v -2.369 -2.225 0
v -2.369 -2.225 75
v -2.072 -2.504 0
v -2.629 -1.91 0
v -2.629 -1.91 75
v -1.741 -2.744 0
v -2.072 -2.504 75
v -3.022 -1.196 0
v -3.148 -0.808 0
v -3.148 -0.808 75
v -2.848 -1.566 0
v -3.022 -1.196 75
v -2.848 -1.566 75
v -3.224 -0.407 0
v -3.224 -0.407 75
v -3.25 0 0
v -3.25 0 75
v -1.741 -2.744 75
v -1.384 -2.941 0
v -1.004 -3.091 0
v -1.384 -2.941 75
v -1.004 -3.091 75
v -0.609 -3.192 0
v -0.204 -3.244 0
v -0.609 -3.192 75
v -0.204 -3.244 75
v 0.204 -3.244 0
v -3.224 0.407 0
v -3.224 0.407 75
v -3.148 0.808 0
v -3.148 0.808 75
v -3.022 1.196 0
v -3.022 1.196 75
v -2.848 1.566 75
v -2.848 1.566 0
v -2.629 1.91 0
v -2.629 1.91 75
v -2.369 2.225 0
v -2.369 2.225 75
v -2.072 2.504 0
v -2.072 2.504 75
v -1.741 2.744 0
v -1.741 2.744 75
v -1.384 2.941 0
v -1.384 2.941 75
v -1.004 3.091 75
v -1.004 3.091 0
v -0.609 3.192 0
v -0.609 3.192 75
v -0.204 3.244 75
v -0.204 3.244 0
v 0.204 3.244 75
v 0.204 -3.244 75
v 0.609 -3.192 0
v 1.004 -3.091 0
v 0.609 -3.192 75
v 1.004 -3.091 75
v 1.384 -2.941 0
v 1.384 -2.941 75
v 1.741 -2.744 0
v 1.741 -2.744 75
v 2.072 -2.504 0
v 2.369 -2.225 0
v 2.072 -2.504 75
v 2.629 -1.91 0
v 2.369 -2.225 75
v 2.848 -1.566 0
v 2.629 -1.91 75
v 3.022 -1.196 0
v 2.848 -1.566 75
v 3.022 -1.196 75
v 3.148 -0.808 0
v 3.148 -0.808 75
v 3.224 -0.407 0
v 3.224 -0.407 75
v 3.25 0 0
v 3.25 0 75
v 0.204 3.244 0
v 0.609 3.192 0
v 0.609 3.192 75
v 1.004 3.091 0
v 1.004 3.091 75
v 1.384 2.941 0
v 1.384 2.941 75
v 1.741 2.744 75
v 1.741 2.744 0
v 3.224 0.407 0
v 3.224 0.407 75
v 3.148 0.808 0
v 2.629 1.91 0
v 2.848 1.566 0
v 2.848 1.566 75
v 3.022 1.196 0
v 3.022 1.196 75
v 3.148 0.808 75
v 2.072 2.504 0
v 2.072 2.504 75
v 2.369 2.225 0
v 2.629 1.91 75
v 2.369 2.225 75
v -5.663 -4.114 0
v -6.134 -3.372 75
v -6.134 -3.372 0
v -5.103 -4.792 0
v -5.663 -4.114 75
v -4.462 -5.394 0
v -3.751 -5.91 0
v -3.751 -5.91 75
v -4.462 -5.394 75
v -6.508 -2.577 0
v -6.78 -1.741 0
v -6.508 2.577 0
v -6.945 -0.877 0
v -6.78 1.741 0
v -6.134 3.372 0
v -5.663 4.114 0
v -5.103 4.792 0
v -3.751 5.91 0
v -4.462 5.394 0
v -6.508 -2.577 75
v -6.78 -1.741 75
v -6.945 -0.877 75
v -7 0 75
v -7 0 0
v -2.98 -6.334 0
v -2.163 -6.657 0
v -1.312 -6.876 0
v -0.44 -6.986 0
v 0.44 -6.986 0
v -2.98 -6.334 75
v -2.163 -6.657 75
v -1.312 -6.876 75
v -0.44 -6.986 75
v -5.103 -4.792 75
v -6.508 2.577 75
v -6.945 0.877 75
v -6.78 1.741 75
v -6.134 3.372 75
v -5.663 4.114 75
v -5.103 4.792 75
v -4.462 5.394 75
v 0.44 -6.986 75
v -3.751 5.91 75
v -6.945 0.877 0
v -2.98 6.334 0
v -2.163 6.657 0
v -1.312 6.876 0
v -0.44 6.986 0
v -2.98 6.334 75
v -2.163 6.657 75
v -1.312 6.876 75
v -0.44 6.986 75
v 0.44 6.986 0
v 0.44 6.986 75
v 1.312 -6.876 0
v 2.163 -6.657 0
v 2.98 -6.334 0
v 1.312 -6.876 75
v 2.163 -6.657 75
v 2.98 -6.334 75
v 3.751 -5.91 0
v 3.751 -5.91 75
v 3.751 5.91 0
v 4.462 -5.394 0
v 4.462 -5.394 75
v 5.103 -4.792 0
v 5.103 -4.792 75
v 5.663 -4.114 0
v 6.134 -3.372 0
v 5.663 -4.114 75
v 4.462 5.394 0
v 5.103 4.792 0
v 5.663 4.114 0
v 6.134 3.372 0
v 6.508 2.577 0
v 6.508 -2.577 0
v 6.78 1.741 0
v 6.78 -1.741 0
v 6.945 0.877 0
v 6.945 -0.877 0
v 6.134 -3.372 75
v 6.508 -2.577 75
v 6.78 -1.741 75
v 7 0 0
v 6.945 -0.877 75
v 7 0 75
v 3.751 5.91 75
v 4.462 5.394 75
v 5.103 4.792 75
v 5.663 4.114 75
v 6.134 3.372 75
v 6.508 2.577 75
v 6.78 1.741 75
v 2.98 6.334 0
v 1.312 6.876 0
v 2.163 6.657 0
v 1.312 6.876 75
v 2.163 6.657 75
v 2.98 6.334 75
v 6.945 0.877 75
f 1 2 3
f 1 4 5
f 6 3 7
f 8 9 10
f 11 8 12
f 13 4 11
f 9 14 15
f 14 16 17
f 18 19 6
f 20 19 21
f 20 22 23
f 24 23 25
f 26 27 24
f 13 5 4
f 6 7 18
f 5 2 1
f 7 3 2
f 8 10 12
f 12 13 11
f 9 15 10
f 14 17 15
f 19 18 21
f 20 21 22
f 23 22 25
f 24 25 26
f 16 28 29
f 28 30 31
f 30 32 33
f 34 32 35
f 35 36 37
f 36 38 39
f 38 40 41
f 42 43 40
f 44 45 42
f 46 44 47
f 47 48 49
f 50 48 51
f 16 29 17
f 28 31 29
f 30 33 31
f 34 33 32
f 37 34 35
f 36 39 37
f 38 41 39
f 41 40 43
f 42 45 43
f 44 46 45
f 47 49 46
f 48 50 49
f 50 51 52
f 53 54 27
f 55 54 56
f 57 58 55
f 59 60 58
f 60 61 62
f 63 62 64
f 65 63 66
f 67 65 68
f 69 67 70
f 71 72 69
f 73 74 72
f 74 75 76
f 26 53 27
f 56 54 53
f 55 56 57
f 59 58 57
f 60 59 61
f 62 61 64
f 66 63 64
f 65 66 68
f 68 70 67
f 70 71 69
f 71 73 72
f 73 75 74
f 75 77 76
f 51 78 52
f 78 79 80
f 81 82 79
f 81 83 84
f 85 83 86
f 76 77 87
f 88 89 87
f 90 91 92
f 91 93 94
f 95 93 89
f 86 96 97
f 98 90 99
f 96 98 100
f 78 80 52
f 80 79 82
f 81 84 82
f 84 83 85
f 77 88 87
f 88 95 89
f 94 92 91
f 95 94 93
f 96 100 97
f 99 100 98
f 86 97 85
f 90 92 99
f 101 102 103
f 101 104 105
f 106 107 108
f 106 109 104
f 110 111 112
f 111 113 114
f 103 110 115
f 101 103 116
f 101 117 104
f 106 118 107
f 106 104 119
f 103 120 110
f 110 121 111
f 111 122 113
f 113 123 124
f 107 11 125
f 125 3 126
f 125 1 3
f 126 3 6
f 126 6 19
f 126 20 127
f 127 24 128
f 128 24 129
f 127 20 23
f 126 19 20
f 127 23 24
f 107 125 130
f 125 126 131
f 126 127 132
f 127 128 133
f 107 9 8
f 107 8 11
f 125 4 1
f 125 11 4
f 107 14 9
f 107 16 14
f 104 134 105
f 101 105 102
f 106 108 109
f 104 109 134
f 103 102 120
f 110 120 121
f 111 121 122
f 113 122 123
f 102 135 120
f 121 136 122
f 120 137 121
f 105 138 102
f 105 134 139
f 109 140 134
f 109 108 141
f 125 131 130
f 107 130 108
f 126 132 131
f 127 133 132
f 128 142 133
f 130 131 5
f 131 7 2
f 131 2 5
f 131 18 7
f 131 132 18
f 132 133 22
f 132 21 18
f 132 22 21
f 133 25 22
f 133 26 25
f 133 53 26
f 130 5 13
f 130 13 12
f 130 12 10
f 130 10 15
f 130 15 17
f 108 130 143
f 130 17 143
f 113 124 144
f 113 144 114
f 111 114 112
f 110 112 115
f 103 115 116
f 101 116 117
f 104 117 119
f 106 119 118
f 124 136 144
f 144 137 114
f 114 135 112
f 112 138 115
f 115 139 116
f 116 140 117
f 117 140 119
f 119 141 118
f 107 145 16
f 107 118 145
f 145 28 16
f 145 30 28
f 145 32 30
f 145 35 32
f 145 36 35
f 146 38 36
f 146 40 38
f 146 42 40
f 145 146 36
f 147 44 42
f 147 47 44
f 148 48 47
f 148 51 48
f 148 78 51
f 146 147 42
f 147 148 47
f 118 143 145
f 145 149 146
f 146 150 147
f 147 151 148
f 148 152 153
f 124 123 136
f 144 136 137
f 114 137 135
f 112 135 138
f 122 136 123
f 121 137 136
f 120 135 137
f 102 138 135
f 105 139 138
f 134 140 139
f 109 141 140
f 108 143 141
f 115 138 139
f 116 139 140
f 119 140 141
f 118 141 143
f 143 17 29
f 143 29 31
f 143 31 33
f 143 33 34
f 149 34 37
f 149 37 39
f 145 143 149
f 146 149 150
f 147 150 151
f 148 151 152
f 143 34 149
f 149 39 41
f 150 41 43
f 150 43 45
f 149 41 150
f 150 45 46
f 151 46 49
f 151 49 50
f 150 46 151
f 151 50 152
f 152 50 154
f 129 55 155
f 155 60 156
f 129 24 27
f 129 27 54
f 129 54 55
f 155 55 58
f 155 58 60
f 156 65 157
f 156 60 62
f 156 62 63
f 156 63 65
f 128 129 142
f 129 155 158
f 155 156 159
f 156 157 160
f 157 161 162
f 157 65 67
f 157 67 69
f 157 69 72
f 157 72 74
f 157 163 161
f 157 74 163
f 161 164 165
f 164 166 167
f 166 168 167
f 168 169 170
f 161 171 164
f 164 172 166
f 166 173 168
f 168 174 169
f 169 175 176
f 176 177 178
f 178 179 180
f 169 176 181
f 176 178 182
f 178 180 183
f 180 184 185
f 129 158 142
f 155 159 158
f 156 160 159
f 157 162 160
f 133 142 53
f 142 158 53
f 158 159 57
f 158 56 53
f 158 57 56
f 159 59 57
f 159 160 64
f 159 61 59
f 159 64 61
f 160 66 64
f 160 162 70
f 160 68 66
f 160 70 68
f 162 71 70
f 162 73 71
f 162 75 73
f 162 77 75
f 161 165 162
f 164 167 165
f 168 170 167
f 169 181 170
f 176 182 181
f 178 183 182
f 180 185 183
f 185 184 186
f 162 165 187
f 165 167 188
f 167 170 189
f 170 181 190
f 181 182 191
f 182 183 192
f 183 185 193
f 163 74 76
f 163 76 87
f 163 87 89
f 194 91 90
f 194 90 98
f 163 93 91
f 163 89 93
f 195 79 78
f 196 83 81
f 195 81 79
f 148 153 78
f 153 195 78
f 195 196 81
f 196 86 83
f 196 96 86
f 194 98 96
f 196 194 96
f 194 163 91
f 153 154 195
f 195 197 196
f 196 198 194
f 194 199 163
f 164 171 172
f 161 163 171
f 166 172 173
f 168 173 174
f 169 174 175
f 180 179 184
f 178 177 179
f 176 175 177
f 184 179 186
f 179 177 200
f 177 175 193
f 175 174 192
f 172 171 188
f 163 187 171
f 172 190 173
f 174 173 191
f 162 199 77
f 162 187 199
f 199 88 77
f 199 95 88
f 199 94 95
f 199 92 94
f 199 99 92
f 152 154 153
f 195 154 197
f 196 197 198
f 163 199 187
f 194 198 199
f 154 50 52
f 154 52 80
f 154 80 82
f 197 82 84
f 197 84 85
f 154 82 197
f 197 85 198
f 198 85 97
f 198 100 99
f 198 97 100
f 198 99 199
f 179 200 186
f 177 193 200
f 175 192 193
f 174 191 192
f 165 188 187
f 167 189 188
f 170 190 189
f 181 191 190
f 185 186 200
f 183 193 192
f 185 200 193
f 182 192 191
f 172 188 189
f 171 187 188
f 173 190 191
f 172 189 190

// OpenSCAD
$fn = 50;

difference() {
	union() {
		cylinder(h = 75, r = 7.0);
	}
	union() {
		translate(v = [0, 0, -100]) {
			cylinder(h = 200, r = 3.25);
		}
		translate(v = [0, 0, -100]) {
			cylinder(h = 200, r = 1.8);
		}
	}
}
